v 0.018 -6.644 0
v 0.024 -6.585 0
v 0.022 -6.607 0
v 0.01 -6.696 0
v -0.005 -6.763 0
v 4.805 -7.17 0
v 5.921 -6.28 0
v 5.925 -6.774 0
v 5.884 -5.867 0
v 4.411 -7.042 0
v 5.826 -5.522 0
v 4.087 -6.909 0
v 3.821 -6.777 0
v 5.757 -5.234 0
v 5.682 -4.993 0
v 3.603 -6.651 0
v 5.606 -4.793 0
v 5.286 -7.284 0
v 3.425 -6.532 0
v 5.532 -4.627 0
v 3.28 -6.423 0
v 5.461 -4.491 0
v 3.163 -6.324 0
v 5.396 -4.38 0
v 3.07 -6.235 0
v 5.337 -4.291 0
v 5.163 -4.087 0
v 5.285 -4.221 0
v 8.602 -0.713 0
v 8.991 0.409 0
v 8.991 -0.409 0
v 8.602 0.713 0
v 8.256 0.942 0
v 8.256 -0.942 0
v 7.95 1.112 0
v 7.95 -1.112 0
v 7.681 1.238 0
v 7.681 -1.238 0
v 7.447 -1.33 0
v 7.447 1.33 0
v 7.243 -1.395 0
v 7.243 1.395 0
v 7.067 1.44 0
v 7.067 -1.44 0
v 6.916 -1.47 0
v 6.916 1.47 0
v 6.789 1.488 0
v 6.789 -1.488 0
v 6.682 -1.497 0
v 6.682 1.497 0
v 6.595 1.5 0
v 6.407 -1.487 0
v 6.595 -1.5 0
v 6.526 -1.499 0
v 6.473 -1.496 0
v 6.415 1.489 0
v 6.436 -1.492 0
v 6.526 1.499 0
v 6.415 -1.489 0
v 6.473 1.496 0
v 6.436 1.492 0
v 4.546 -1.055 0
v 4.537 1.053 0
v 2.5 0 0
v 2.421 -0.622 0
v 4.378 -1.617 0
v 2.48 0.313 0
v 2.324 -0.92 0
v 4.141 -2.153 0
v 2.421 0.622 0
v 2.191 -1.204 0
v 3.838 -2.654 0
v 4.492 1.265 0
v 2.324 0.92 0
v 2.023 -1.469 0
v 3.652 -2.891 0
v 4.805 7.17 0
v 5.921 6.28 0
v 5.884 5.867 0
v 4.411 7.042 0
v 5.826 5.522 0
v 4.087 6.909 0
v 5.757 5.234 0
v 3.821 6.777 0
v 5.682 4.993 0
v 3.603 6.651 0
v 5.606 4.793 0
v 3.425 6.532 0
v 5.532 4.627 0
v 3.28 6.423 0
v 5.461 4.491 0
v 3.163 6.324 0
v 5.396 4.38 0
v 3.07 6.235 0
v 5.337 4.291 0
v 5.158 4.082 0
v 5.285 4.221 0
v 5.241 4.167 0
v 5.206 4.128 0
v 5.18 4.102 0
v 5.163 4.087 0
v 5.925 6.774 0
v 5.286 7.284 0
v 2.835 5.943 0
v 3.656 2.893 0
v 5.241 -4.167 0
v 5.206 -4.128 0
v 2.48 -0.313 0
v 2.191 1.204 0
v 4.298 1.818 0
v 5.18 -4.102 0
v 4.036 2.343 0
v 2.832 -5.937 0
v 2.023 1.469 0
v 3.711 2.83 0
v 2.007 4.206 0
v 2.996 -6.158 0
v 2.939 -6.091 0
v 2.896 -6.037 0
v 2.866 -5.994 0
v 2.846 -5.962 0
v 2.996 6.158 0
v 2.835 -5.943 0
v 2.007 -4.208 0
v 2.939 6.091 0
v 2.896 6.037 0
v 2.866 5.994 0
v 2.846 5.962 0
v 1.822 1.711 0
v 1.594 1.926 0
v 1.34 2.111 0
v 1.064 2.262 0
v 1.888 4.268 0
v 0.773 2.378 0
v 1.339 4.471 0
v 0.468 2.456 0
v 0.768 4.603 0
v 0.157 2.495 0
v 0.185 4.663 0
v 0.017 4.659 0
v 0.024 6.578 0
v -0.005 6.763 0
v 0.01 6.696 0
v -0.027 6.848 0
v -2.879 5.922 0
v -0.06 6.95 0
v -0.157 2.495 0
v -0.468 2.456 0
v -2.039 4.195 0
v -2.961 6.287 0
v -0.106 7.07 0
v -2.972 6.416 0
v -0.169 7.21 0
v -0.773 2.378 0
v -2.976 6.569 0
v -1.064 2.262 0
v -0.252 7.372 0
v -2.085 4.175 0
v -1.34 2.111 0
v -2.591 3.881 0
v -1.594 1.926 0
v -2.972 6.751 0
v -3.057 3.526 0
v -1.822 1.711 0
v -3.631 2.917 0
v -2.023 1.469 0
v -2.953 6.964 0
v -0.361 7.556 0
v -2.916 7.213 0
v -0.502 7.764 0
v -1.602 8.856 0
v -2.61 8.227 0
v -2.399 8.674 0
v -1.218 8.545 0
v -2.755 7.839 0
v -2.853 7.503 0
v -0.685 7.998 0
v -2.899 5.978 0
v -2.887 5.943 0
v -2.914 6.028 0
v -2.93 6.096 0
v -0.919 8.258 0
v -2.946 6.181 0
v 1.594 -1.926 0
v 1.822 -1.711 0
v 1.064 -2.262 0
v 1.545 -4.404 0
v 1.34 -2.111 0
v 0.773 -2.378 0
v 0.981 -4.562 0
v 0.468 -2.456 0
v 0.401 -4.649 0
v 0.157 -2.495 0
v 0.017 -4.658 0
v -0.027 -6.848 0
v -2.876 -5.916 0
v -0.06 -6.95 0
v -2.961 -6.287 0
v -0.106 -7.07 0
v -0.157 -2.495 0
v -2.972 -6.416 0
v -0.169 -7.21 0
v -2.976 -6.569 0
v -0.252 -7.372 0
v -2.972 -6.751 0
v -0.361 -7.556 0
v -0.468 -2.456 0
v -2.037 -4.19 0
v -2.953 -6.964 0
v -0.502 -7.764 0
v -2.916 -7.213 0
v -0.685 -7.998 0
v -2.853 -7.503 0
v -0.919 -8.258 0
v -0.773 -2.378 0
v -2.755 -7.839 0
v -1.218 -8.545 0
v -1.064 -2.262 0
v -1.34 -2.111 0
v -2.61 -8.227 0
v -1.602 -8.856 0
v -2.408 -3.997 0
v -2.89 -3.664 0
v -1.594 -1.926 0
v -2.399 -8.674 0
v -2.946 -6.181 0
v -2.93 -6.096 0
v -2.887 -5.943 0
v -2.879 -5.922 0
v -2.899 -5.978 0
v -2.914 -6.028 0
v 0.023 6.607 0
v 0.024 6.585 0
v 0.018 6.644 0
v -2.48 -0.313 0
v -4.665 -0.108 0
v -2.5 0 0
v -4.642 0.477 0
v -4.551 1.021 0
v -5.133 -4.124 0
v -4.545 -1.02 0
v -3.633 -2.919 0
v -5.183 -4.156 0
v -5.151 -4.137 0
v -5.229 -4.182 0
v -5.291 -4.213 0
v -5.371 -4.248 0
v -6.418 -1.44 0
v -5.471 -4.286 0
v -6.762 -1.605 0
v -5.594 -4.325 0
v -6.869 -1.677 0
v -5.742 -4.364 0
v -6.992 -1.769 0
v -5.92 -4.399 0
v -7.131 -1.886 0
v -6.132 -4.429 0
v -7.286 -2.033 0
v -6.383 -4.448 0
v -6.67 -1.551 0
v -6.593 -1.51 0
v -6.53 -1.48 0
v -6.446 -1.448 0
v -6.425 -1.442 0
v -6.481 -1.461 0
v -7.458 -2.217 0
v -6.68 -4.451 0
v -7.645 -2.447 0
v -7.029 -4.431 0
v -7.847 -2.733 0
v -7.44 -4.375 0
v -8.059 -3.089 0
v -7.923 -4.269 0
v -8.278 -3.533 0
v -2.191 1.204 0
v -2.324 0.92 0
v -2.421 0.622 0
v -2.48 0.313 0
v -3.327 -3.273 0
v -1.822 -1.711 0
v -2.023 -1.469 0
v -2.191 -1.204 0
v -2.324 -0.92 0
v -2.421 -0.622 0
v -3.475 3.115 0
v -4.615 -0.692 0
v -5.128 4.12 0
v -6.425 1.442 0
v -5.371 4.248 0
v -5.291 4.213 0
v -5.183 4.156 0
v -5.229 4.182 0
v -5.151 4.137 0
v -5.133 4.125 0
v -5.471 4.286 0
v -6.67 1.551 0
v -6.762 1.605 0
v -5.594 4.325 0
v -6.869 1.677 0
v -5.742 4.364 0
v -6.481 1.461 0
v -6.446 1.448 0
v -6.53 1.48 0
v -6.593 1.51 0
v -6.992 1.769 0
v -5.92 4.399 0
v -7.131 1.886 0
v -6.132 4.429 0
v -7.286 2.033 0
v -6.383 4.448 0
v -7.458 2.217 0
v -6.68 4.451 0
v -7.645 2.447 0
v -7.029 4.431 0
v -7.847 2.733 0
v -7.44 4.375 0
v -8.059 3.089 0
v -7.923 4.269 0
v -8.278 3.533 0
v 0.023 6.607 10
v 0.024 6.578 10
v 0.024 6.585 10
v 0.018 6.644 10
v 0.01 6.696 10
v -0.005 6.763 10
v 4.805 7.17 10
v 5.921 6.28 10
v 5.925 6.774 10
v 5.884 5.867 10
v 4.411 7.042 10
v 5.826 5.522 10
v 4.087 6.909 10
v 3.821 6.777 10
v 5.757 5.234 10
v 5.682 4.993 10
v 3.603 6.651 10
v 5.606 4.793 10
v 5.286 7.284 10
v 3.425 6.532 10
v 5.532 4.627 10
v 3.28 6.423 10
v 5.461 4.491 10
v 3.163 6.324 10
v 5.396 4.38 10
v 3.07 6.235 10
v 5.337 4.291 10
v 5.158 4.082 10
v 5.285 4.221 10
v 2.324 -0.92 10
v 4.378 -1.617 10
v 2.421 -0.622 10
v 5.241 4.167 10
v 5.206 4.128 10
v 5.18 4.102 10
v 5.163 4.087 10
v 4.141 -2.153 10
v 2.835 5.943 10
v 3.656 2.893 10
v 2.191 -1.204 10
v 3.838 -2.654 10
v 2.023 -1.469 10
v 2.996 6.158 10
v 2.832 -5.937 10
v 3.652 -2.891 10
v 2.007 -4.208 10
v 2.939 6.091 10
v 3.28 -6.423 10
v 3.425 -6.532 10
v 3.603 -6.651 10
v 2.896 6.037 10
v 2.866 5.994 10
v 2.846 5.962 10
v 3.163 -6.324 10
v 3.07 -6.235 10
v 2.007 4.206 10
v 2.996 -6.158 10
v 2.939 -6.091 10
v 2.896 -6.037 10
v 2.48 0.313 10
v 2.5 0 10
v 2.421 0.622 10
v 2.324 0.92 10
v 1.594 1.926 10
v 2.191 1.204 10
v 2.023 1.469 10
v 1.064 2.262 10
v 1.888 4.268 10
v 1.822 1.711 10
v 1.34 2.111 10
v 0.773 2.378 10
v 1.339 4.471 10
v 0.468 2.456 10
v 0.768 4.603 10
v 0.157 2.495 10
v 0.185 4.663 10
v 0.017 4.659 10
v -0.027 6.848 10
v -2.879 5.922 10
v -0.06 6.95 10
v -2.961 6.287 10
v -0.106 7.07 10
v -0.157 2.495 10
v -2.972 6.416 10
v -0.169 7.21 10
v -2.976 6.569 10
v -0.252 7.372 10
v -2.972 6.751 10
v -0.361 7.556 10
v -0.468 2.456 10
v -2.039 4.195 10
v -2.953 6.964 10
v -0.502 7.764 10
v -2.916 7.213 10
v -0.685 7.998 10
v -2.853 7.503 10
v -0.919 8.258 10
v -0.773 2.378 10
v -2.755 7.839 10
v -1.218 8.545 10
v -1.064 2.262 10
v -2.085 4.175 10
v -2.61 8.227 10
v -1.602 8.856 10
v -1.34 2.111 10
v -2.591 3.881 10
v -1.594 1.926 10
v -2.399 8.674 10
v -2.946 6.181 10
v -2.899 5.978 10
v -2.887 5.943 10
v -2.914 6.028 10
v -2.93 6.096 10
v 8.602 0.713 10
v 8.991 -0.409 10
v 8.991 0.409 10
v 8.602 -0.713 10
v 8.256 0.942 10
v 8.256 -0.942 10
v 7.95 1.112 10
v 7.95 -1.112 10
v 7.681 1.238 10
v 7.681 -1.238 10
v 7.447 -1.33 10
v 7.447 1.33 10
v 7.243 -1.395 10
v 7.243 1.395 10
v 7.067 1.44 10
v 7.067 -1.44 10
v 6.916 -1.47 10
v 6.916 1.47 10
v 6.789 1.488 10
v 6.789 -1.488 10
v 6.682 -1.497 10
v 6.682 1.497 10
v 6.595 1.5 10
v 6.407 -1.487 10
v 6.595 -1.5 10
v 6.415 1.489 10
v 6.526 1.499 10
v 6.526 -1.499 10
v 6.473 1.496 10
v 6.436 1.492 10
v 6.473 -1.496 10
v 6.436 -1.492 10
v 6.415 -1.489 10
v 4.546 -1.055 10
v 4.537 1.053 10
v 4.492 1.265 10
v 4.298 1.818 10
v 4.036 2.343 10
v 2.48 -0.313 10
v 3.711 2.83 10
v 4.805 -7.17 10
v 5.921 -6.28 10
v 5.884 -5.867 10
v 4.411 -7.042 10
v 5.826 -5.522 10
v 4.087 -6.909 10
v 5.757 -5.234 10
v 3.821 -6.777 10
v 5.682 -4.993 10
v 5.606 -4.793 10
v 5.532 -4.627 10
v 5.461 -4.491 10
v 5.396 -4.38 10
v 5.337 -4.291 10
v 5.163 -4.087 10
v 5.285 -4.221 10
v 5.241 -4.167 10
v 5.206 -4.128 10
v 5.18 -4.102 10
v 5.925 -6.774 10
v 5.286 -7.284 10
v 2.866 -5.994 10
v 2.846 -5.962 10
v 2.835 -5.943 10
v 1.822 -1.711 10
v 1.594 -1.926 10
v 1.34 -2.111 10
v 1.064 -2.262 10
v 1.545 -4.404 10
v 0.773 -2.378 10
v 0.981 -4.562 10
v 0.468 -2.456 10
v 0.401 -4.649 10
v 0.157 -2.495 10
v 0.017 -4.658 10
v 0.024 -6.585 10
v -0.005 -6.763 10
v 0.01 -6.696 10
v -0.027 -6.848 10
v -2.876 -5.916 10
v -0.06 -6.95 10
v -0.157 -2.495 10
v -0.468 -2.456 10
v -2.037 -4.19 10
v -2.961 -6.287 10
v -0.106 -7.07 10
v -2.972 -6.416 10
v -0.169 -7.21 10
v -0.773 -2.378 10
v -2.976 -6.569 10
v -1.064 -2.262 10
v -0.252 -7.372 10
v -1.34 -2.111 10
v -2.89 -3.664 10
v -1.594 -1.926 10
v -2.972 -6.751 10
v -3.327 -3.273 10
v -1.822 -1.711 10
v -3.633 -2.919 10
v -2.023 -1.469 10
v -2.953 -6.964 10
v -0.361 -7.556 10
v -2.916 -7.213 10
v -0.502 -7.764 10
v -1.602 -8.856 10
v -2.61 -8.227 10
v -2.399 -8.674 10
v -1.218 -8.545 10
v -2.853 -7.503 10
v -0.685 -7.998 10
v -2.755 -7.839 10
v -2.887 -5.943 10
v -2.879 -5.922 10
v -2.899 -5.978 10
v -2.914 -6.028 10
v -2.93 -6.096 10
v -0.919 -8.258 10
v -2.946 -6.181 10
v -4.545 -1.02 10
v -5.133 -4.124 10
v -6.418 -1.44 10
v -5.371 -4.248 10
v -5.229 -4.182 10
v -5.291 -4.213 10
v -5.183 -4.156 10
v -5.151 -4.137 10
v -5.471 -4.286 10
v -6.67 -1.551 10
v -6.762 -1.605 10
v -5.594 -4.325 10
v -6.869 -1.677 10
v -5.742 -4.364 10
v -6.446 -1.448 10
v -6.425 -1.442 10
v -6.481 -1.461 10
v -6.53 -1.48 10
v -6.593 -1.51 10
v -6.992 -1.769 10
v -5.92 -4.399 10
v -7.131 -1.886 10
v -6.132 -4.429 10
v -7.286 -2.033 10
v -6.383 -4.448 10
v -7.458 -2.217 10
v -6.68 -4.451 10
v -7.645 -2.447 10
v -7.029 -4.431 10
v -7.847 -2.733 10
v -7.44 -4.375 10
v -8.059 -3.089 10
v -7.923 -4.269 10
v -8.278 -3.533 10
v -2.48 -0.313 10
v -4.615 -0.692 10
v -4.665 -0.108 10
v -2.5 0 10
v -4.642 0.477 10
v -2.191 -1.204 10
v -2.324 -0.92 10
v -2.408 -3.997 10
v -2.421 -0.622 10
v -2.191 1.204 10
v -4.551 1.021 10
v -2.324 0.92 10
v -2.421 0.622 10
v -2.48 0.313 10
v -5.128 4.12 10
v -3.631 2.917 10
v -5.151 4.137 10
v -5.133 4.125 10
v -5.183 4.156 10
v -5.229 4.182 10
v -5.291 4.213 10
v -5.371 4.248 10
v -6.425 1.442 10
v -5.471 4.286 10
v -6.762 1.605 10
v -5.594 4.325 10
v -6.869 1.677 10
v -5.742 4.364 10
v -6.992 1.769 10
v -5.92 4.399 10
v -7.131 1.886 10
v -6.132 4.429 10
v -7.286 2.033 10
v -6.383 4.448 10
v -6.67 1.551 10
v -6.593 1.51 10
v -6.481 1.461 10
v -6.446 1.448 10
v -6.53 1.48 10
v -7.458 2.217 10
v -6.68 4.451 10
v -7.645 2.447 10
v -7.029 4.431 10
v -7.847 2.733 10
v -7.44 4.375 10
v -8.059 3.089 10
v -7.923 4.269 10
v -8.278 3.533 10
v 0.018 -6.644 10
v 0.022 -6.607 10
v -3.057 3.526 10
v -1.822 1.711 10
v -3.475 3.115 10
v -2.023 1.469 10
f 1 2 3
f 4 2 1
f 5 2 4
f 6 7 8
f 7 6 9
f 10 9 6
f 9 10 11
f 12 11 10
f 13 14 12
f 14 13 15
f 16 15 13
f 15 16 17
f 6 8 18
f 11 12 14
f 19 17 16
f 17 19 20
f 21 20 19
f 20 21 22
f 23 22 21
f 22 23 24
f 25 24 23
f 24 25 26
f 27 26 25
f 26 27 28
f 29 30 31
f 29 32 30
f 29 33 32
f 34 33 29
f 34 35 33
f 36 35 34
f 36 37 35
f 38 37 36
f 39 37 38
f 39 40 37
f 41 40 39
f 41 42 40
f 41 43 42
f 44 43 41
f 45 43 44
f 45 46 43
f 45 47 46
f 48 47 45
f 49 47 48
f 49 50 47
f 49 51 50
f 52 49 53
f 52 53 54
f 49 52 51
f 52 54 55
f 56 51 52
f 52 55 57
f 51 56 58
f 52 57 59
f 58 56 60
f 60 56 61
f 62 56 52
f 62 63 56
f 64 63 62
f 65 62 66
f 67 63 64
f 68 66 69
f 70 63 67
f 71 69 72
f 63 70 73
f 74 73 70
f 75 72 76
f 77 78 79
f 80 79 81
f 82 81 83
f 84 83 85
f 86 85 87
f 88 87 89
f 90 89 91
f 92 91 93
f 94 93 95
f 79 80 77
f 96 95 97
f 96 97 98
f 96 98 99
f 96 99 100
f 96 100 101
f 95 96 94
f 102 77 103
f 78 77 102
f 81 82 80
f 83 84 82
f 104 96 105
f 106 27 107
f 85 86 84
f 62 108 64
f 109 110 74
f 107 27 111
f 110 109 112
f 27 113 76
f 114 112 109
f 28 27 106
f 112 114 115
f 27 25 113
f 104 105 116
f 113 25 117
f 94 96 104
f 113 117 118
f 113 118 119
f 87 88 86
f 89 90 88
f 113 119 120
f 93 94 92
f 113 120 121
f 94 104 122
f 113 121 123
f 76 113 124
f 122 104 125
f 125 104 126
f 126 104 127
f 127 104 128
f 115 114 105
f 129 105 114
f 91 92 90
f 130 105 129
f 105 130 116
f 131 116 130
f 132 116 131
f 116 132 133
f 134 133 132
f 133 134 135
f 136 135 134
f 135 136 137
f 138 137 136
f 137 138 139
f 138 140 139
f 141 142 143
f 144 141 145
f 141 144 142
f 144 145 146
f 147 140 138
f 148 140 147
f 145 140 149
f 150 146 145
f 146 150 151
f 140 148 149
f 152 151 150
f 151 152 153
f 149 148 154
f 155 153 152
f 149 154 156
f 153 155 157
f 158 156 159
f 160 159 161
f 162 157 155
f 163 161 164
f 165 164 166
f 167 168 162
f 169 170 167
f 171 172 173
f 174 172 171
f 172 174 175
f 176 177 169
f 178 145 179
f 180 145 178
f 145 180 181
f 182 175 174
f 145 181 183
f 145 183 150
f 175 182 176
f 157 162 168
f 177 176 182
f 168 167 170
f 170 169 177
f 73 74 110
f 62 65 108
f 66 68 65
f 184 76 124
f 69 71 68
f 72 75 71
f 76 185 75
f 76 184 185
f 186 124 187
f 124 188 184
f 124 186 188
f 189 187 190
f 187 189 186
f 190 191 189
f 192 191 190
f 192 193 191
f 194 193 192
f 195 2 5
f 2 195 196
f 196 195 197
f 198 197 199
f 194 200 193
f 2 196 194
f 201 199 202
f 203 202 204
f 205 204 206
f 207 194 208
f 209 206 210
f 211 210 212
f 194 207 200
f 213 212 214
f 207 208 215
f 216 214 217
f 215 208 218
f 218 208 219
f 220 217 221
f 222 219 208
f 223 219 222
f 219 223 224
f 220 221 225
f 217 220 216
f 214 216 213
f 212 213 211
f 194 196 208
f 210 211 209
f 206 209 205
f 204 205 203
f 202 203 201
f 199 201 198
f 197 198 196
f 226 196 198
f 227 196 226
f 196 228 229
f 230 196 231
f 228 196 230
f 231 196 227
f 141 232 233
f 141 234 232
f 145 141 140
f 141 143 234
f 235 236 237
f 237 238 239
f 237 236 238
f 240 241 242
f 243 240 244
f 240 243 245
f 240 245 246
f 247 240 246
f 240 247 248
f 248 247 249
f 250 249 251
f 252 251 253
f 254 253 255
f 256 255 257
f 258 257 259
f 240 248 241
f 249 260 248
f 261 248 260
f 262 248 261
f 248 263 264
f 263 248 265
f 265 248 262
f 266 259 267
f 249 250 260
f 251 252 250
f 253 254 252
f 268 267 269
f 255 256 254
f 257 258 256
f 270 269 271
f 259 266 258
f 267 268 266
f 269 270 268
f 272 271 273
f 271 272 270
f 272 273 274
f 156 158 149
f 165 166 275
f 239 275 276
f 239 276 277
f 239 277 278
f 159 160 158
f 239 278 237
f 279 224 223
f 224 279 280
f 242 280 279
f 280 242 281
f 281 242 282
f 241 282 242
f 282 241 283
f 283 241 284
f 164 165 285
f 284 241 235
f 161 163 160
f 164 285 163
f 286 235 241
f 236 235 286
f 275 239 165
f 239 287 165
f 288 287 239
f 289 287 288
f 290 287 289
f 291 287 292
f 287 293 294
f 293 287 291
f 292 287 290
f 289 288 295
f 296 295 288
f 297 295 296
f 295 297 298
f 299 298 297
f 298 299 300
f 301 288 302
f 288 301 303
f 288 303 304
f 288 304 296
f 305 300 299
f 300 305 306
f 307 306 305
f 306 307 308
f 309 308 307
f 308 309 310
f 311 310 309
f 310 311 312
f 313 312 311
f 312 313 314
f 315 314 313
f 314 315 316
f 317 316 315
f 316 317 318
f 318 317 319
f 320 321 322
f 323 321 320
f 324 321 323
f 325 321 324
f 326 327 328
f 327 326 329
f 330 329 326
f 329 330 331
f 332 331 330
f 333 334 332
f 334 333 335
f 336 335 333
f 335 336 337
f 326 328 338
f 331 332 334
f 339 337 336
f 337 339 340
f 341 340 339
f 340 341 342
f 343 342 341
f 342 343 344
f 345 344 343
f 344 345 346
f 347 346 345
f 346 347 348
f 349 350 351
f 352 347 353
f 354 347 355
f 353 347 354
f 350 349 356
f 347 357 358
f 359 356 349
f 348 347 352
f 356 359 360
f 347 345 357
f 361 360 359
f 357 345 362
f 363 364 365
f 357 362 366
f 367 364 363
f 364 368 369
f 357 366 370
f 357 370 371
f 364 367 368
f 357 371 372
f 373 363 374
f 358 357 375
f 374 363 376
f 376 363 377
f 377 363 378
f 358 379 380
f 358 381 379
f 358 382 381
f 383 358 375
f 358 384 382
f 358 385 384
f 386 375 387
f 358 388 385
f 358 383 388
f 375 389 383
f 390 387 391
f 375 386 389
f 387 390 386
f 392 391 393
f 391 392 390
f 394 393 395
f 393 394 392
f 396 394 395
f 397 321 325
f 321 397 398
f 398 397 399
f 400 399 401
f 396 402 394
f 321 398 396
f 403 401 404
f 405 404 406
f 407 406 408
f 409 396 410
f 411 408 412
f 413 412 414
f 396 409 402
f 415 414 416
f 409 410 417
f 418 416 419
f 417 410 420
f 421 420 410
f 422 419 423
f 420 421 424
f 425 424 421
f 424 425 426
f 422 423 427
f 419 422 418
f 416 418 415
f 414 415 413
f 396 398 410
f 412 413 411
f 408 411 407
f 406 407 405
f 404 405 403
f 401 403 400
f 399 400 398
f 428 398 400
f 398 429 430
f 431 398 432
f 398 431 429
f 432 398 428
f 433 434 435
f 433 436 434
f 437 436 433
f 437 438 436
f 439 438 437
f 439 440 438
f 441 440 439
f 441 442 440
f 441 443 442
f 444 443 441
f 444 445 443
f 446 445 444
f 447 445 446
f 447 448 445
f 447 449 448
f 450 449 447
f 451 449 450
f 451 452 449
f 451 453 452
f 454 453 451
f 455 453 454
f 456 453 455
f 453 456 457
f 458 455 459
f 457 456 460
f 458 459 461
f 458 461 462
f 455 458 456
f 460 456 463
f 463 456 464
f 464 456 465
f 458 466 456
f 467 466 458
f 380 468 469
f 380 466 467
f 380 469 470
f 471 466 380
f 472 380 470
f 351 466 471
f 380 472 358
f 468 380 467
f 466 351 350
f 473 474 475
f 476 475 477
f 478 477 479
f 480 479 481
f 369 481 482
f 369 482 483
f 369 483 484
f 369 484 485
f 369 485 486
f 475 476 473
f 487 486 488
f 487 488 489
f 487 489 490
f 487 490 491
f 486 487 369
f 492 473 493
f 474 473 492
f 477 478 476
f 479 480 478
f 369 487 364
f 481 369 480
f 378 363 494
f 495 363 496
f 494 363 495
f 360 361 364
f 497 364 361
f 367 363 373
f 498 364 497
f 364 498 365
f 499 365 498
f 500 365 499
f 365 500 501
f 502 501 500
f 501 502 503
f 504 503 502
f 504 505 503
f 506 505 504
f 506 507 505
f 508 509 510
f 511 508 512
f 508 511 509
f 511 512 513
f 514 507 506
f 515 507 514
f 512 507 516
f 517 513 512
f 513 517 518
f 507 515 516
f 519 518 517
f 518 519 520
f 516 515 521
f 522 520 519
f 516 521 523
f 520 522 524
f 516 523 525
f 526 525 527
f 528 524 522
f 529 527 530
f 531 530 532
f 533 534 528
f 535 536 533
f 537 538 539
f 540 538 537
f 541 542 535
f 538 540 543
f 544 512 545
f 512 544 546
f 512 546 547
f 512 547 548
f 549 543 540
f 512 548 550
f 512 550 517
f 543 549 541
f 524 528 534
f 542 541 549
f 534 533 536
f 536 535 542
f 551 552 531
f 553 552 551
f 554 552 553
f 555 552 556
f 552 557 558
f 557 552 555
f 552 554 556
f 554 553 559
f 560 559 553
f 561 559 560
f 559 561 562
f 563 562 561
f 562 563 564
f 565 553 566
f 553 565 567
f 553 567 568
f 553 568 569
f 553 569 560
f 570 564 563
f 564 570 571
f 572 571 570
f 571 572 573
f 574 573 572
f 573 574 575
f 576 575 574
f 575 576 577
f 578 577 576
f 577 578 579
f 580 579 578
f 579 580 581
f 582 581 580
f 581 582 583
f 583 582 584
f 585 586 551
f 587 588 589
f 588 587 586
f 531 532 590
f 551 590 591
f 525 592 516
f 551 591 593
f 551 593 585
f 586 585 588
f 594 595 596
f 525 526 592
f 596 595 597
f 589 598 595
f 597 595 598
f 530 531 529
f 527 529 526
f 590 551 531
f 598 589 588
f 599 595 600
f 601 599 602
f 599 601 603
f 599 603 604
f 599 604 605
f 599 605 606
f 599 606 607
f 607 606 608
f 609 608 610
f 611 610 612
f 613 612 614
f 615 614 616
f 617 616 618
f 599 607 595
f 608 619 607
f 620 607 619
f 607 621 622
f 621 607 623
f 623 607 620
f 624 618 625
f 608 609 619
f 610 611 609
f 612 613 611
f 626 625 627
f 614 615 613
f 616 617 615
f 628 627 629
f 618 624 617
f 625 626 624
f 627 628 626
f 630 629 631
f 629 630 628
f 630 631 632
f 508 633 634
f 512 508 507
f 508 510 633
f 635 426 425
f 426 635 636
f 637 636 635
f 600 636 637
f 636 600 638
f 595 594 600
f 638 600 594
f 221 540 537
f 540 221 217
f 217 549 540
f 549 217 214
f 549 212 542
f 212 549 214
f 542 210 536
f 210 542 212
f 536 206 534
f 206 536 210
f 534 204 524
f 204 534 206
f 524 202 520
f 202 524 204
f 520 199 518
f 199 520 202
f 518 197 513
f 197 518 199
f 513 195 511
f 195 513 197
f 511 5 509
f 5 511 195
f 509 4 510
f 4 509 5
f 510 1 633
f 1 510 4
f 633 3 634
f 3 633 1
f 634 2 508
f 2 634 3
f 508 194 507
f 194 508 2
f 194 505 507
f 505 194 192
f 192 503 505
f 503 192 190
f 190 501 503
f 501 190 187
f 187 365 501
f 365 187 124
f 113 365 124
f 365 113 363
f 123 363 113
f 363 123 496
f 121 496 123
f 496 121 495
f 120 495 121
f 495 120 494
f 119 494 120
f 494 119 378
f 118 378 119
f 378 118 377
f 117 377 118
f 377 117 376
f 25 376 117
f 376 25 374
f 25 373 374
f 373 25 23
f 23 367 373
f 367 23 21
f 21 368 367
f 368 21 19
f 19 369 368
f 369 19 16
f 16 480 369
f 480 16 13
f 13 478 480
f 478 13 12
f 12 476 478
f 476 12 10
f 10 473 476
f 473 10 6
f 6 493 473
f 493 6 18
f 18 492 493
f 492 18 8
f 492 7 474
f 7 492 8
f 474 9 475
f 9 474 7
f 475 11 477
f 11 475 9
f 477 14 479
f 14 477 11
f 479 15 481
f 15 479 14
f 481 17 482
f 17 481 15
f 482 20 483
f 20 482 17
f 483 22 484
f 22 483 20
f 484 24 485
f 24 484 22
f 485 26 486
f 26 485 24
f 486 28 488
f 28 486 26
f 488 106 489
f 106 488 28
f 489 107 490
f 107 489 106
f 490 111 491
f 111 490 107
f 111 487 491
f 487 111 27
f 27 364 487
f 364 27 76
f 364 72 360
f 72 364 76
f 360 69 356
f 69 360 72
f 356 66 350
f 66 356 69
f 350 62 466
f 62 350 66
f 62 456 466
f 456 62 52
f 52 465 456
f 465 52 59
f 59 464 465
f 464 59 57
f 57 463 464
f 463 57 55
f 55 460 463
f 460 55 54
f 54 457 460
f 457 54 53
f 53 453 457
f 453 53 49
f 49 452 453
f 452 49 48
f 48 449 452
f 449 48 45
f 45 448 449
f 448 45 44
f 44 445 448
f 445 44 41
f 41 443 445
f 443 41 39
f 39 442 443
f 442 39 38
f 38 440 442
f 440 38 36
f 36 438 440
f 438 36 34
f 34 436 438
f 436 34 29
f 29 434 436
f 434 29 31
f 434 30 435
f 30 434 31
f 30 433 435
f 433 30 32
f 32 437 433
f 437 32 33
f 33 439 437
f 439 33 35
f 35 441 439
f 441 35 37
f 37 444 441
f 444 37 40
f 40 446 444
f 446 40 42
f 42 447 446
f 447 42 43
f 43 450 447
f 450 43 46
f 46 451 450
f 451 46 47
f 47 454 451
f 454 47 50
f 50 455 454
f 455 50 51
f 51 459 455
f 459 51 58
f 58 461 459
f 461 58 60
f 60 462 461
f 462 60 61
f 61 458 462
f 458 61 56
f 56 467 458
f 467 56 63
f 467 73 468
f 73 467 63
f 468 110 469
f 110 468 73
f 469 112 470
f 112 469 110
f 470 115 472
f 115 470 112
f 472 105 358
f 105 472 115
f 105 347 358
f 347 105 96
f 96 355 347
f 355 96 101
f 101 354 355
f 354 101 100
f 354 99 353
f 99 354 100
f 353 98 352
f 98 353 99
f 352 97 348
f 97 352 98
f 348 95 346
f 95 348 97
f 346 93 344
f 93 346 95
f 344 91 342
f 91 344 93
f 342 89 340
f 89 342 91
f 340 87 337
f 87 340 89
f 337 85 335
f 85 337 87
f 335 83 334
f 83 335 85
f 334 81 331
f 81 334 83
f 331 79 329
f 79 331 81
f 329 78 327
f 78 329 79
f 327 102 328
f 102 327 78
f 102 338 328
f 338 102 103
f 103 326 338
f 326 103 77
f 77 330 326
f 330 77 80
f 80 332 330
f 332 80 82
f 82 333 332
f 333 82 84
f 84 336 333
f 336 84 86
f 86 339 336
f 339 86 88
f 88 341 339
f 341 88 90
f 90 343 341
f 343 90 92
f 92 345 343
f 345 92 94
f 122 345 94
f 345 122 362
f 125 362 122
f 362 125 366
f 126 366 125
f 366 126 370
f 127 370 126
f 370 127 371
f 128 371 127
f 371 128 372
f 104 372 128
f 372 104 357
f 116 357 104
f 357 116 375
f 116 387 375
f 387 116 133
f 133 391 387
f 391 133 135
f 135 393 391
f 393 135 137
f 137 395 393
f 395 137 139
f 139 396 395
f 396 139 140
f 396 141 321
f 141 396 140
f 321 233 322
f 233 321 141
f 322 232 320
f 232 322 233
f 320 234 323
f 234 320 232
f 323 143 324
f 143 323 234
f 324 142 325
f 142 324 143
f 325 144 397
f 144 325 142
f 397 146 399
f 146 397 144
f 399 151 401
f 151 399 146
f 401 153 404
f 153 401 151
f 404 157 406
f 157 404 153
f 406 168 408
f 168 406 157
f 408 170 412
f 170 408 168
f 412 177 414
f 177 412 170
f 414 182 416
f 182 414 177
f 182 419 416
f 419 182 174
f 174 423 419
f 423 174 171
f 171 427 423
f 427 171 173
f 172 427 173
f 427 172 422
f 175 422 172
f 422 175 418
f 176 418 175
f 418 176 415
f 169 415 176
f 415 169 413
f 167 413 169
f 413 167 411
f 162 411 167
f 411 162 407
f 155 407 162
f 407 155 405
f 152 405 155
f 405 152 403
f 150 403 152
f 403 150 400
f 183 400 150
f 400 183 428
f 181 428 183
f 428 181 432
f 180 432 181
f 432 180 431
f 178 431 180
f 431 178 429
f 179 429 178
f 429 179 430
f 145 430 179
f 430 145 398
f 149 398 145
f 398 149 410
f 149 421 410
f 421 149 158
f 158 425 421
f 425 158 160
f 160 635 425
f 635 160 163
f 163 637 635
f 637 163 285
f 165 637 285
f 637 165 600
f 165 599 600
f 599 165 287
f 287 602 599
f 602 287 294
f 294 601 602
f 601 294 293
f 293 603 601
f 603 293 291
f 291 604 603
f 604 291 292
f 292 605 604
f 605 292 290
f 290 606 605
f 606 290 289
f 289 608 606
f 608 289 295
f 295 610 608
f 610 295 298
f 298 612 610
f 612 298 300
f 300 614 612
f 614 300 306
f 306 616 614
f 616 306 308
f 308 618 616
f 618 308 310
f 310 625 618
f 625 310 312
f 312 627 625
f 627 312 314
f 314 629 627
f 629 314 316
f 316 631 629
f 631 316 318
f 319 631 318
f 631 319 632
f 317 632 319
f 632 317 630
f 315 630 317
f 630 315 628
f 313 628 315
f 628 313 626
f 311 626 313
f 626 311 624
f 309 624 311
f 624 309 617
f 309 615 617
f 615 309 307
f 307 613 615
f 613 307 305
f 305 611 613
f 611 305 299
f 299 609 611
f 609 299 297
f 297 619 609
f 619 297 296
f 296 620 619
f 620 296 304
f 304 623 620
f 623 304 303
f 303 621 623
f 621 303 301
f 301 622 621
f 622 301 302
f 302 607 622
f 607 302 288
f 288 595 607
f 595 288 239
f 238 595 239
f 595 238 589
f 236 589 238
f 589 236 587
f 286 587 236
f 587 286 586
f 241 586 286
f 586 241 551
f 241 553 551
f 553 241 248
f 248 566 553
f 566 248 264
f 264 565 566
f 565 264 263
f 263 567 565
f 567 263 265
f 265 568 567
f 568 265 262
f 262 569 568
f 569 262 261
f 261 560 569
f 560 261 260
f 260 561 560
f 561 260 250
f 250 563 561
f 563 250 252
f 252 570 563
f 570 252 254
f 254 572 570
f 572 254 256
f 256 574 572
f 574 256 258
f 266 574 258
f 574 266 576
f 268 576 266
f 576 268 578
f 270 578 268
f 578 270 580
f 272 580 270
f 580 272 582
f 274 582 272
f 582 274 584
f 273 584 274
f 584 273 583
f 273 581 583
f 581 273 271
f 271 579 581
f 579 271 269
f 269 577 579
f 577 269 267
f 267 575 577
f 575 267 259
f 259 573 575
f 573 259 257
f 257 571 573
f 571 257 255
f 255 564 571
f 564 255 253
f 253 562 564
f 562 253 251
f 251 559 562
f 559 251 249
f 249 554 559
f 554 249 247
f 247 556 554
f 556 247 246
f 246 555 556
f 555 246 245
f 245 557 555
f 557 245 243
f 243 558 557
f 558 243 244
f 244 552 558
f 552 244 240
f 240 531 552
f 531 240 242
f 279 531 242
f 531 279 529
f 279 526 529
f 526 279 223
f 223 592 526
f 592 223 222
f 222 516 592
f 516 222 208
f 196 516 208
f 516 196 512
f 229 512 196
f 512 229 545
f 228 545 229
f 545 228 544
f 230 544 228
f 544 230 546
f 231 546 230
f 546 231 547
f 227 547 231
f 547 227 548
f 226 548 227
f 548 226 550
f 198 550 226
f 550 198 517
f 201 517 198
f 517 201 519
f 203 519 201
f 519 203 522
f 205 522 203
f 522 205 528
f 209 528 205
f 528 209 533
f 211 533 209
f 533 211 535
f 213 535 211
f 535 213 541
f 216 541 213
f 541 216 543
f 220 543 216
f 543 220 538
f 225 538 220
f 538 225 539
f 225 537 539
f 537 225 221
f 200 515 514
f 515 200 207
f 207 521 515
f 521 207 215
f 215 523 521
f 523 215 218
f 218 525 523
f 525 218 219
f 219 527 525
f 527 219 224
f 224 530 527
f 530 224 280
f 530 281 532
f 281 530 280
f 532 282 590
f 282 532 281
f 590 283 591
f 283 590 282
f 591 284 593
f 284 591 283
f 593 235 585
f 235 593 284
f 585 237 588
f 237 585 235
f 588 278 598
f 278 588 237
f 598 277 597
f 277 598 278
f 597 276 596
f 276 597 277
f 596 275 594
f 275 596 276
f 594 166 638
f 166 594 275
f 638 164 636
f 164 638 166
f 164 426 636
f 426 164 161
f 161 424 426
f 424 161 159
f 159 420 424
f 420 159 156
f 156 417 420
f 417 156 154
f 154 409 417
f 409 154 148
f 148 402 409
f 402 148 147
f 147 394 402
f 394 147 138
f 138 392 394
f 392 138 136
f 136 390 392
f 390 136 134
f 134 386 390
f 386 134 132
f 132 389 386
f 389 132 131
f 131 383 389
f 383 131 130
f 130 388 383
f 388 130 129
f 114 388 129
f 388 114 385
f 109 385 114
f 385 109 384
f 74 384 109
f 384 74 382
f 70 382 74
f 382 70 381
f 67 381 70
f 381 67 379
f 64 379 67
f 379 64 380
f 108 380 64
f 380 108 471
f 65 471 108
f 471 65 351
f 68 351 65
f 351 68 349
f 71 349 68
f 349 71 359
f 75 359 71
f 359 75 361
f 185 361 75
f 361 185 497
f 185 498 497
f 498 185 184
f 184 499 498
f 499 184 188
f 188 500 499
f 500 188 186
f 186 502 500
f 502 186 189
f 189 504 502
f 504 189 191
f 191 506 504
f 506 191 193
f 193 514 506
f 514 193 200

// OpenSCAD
include <gears/gears.scad>

spur_gear(2, 7, 10, +5,   pressure_angle=20, helix_angle=0);
